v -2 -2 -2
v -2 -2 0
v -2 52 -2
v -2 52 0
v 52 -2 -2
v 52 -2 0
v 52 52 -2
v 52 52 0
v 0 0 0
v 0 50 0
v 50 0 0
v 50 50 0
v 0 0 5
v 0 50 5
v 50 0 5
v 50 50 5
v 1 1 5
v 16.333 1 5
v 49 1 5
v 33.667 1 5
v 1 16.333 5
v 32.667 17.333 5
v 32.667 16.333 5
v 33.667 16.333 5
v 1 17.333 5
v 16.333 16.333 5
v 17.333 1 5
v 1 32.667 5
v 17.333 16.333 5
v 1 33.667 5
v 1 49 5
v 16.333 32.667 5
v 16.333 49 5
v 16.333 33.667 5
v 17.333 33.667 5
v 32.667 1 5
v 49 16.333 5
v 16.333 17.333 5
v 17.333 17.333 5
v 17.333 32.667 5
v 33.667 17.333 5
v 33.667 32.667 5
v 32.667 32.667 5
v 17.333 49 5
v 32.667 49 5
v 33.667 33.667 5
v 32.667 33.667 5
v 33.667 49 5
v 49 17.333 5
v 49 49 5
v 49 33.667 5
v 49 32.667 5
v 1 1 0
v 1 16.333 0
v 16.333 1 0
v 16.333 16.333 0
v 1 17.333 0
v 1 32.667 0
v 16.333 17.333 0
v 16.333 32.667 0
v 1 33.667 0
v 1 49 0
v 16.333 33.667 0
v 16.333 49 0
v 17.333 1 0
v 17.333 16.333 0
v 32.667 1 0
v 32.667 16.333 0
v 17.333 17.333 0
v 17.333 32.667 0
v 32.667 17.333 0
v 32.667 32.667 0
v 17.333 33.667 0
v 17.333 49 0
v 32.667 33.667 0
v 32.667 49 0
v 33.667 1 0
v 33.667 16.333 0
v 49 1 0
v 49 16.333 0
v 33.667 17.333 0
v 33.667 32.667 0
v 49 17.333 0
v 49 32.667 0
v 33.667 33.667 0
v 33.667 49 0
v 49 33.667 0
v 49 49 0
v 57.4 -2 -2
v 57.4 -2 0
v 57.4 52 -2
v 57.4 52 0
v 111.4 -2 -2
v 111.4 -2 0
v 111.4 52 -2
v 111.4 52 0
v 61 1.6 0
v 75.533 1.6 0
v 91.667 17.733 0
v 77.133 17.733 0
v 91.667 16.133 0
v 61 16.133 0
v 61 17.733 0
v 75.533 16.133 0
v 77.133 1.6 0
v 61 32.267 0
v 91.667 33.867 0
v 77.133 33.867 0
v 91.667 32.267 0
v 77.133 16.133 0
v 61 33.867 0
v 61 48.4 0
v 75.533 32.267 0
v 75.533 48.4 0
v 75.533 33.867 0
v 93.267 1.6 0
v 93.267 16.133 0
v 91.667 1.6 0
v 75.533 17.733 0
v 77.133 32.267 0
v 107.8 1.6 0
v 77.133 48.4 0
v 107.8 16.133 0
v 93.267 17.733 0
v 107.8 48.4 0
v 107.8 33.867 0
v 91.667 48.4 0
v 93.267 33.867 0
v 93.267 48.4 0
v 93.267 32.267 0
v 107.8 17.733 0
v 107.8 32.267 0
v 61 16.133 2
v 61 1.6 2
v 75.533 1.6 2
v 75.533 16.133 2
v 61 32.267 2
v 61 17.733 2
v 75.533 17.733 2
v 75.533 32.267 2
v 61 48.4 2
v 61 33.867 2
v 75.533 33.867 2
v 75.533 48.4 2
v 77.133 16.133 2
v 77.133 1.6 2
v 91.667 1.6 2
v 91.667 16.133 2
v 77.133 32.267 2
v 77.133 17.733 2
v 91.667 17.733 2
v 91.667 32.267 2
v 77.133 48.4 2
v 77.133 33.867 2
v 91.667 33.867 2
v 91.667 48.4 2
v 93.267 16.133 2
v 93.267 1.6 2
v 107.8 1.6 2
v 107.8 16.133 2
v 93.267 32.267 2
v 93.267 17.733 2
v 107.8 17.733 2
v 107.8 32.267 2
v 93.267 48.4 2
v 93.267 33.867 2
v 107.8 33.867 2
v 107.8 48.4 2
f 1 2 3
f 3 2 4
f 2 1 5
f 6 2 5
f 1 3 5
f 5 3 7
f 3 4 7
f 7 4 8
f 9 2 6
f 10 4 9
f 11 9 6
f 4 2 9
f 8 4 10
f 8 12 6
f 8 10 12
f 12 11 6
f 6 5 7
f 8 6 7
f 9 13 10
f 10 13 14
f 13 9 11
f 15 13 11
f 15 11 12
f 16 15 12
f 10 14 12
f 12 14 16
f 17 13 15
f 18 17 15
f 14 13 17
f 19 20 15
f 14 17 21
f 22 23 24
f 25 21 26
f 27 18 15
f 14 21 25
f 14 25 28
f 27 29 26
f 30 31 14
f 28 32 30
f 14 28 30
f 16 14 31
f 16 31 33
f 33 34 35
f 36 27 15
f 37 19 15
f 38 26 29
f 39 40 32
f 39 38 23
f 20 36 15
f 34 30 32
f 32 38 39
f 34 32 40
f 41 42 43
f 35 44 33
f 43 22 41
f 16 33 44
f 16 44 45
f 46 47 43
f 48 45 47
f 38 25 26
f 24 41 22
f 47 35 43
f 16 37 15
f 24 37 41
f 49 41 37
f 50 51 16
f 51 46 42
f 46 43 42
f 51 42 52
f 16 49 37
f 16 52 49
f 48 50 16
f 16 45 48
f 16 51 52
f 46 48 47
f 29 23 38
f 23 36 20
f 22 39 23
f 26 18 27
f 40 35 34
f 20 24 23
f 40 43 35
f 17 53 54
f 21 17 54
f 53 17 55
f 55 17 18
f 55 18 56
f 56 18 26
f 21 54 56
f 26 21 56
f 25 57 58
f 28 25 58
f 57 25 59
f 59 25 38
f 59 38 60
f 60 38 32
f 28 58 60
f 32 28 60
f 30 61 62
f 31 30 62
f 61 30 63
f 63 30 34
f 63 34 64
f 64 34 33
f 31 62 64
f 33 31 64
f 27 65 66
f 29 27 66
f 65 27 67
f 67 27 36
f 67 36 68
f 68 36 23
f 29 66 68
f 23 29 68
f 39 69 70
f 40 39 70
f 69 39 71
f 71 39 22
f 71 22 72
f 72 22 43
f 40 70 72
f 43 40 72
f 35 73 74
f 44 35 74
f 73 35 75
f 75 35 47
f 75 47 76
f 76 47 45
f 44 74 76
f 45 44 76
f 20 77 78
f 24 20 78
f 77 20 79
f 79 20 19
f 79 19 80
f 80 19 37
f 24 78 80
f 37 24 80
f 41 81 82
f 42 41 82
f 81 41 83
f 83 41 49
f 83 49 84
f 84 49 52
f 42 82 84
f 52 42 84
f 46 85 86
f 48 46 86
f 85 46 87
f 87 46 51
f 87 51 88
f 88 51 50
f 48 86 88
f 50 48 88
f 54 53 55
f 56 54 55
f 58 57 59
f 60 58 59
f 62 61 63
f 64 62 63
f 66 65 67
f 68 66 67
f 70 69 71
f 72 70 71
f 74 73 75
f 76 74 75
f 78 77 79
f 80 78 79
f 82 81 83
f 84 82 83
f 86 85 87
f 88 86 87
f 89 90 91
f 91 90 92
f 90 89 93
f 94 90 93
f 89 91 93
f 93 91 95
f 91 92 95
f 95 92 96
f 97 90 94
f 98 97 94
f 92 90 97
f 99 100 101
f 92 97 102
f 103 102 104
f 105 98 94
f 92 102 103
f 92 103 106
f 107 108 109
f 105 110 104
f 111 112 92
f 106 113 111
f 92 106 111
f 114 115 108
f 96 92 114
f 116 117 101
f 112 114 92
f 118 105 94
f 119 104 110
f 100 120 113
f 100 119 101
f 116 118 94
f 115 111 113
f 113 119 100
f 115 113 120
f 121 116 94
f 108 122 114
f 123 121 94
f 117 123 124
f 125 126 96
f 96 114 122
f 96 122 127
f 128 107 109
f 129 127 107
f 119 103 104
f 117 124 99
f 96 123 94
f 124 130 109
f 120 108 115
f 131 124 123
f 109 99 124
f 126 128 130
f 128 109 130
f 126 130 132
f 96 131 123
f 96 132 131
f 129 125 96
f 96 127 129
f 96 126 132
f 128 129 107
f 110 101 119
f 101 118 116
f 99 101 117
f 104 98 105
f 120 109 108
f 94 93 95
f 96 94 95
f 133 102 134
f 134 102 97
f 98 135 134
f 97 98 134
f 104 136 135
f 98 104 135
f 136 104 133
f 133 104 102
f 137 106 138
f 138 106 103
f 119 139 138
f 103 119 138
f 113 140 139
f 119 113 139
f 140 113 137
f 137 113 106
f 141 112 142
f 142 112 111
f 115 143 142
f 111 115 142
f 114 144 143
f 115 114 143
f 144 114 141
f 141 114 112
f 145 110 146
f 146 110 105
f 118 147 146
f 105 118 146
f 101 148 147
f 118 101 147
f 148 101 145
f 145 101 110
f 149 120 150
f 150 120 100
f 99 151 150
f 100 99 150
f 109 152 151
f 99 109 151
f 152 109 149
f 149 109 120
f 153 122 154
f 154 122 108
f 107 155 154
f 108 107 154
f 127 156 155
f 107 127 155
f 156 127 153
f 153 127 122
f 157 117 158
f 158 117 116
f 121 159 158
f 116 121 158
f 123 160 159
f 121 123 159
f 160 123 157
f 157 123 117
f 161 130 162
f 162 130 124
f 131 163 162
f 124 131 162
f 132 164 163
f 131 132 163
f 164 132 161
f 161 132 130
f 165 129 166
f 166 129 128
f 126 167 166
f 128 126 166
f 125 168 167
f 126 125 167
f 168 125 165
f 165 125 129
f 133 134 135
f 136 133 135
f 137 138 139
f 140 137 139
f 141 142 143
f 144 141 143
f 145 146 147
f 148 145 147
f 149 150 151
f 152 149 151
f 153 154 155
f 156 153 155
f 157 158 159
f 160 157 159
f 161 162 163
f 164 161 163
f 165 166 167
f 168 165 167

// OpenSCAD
/*
Parametric wafer sample box.
This SCAD file is a tool to design boxes for holding
thin film samples grown on thin (<1mm) wafers.
They are meant to hold multiple samples in place so that they will
not get mixed up or damaged.

auth: Alex D.
*/


/* GLOBAL PARAMS */
/* 
If you're looking at this for the first time, this is where
you will set the dimensions and design parameters for your box.
Simply change the values below corresponding to the values that
you want to be different from the default. Please refer to the
diagram in the readme if you are unsure of what parameters do what.
*/

/* xlen and ylen specify the overall length & width of the box. */
xlen = 50;
ylen = 50;

/* nrows and ncols decide how many rows & columns of die compartments
there will be.*/
nrows = 3;
ncols = 3;

/* twall decides the thickness of the compartment walls */
twall = 1;
/* hwall decides the height of the compartment walls */
hwall = 5;
/* hlid decides how tall the little squares on the top side
that cap off the compartments are (or, equivalently, how
far the squares go into the compartments when the box is closed).*/
hlid = 2;
/* tbase sets the width of the base plate lip, and hbase its height. */
tbase = 2;
hbase = 2;

/* expf is a fudge factor for plastic expansion, intended
to improve the fit between top and bottom. If it's too tight,
increse it. If it's too loose, decrease it.*/
expf = 0.6;

module main() {
    bottom();
    translate([1.1*(xlen+2*tbase),0,0])
    top();
}

module bottom() {
    xbase = xlen + 2 * tbase;
    ybase = ylen + 2 * tbase;
    translate([-tbase,-tbase,-hbase])
    cube([xbase,ybase,hbase]);
    nxwalls = ncols - 1;
    nywalls = nrows - 1;
    xclen = (xlen - nxwalls*twall) / ncols;
    for (i = [0:nrows]) {
        translate([i*(xlen - twall) / nrows, 0, 0])
        cube([twall, ylen, hwall]);
    }
    for (k = [0:ncols]) {
        translate([0, k*(ylen - twall) / ncols, 0])
        cube([xlen, twall, hwall]);
    }
}

module top() {
    xbase = xlen + 2 * tbase;
    ybase = ylen + 2 * tbase;
    nxwalls = ncols - 1;
    nywalls = nrows - 1;
    xclen = (xlen - nxwalls*twall) / ncols;
    translate([-tbase,-tbase,-hbase])
    cube([xbase,ybase,hbase]);
    /* 3% expansion factor built in to account for ABS,
    should change to allow for arbitrary amount*/
    twall2 = (1+expf)*twall;
    difference() {
        cube([xlen-twall/2,ylen-twall/2,hlid]);
        for (i = [0:nrows]) {
            translate([i*(xlen - twall2) / nrows, 0, 0])
            cube([twall2, ylen, hwall]);
        }
        for (k = [0:ncols]) {
            translate([0, k*(ylen - twall2) / ncols, 0])
            cube([xlen, twall2, hwall]);
        }
    }
}

main();
